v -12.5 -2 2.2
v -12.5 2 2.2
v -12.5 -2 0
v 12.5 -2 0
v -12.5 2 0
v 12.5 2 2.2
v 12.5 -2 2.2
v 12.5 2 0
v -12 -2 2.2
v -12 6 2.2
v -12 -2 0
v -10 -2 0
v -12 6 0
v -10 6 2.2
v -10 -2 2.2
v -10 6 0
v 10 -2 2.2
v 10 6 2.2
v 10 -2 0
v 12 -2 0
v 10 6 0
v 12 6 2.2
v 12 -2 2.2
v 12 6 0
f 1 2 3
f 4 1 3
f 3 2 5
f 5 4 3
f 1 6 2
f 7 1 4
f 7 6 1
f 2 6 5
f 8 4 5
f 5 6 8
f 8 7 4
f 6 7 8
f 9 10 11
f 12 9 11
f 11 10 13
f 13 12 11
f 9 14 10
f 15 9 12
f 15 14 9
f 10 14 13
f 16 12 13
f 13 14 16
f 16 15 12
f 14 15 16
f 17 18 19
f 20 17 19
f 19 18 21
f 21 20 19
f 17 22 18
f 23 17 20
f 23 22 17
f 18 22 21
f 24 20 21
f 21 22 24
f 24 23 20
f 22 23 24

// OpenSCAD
/*
Yamper V11 mesh source for yamper_v11_max98357a_clip.stl
Units: millimeters

This source keeps the restored V11 STL geometry as a plain OpenSCAD polyhedron.
It is not a new redesign. It exists so the CAD source, STL, and STEP exports stay together.
*/

module yamper_v11_max98357a_clip() {
    pts = [
        [-12.5, -2, 2.2],
        [-12.5, 2, 2.2],
        [-12.5, -2, 0],
        [12.5, -2, 0],
        [-12.5, 2, 0],
        [12.5, 2, 2.2],
        [12.5, -2, 2.2],
        [12.5, 2, 0],
        [-12, -2, 2.2],
        [-12, 6, 2.2],
        [-12, -2, 0],
        [-10, -2, 0],
        [-12, 6, 0],
        [-10, 6, 2.2],
        [-10, -2, 2.2],
        [-10, 6, 0],
        [10, -2, 2.2],
        [10, 6, 2.2],
        [10, -2, 0],
        [12, -2, 0],
        [10, 6, 0],
        [12, 6, 2.2],
        [12, -2, 2.2],
        [12, 6, 0],
    ];

    tris = [
        [0, 1, 2],
        [3, 0, 2],
        [2, 1, 4],
        [4, 3, 2],
        [0, 5, 1],
        [6, 0, 3],
        [6, 5, 0],
        [1, 5, 4],
        [7, 3, 4],
        [4, 5, 7],
        [7, 6, 3],
        [5, 6, 7],
        [8, 9, 10],
        [11, 8, 10],
        [10, 9, 12],
        [12, 11, 10],
        [8, 13, 9],
        [14, 8, 11],
        [14, 13, 8],
        [9, 13, 12],
        [15, 11, 12],
        [12, 13, 15],
        [15, 14, 11],
        [13, 14, 15],
        [16, 17, 18],
        [19, 16, 18],
        [18, 17, 20],
        [20, 19, 18],
        [16, 21, 17],
        [22, 16, 19],
        [22, 21, 16],
        [17, 21, 20],
        [23, 19, 20],
        [20, 21, 23],
        [23, 22, 19],
        [21, 22, 23],
    ];

    polyhedron(points = pts, faces = tris, convexity = 10);
}

yamper_v11_max98357a_clip();
